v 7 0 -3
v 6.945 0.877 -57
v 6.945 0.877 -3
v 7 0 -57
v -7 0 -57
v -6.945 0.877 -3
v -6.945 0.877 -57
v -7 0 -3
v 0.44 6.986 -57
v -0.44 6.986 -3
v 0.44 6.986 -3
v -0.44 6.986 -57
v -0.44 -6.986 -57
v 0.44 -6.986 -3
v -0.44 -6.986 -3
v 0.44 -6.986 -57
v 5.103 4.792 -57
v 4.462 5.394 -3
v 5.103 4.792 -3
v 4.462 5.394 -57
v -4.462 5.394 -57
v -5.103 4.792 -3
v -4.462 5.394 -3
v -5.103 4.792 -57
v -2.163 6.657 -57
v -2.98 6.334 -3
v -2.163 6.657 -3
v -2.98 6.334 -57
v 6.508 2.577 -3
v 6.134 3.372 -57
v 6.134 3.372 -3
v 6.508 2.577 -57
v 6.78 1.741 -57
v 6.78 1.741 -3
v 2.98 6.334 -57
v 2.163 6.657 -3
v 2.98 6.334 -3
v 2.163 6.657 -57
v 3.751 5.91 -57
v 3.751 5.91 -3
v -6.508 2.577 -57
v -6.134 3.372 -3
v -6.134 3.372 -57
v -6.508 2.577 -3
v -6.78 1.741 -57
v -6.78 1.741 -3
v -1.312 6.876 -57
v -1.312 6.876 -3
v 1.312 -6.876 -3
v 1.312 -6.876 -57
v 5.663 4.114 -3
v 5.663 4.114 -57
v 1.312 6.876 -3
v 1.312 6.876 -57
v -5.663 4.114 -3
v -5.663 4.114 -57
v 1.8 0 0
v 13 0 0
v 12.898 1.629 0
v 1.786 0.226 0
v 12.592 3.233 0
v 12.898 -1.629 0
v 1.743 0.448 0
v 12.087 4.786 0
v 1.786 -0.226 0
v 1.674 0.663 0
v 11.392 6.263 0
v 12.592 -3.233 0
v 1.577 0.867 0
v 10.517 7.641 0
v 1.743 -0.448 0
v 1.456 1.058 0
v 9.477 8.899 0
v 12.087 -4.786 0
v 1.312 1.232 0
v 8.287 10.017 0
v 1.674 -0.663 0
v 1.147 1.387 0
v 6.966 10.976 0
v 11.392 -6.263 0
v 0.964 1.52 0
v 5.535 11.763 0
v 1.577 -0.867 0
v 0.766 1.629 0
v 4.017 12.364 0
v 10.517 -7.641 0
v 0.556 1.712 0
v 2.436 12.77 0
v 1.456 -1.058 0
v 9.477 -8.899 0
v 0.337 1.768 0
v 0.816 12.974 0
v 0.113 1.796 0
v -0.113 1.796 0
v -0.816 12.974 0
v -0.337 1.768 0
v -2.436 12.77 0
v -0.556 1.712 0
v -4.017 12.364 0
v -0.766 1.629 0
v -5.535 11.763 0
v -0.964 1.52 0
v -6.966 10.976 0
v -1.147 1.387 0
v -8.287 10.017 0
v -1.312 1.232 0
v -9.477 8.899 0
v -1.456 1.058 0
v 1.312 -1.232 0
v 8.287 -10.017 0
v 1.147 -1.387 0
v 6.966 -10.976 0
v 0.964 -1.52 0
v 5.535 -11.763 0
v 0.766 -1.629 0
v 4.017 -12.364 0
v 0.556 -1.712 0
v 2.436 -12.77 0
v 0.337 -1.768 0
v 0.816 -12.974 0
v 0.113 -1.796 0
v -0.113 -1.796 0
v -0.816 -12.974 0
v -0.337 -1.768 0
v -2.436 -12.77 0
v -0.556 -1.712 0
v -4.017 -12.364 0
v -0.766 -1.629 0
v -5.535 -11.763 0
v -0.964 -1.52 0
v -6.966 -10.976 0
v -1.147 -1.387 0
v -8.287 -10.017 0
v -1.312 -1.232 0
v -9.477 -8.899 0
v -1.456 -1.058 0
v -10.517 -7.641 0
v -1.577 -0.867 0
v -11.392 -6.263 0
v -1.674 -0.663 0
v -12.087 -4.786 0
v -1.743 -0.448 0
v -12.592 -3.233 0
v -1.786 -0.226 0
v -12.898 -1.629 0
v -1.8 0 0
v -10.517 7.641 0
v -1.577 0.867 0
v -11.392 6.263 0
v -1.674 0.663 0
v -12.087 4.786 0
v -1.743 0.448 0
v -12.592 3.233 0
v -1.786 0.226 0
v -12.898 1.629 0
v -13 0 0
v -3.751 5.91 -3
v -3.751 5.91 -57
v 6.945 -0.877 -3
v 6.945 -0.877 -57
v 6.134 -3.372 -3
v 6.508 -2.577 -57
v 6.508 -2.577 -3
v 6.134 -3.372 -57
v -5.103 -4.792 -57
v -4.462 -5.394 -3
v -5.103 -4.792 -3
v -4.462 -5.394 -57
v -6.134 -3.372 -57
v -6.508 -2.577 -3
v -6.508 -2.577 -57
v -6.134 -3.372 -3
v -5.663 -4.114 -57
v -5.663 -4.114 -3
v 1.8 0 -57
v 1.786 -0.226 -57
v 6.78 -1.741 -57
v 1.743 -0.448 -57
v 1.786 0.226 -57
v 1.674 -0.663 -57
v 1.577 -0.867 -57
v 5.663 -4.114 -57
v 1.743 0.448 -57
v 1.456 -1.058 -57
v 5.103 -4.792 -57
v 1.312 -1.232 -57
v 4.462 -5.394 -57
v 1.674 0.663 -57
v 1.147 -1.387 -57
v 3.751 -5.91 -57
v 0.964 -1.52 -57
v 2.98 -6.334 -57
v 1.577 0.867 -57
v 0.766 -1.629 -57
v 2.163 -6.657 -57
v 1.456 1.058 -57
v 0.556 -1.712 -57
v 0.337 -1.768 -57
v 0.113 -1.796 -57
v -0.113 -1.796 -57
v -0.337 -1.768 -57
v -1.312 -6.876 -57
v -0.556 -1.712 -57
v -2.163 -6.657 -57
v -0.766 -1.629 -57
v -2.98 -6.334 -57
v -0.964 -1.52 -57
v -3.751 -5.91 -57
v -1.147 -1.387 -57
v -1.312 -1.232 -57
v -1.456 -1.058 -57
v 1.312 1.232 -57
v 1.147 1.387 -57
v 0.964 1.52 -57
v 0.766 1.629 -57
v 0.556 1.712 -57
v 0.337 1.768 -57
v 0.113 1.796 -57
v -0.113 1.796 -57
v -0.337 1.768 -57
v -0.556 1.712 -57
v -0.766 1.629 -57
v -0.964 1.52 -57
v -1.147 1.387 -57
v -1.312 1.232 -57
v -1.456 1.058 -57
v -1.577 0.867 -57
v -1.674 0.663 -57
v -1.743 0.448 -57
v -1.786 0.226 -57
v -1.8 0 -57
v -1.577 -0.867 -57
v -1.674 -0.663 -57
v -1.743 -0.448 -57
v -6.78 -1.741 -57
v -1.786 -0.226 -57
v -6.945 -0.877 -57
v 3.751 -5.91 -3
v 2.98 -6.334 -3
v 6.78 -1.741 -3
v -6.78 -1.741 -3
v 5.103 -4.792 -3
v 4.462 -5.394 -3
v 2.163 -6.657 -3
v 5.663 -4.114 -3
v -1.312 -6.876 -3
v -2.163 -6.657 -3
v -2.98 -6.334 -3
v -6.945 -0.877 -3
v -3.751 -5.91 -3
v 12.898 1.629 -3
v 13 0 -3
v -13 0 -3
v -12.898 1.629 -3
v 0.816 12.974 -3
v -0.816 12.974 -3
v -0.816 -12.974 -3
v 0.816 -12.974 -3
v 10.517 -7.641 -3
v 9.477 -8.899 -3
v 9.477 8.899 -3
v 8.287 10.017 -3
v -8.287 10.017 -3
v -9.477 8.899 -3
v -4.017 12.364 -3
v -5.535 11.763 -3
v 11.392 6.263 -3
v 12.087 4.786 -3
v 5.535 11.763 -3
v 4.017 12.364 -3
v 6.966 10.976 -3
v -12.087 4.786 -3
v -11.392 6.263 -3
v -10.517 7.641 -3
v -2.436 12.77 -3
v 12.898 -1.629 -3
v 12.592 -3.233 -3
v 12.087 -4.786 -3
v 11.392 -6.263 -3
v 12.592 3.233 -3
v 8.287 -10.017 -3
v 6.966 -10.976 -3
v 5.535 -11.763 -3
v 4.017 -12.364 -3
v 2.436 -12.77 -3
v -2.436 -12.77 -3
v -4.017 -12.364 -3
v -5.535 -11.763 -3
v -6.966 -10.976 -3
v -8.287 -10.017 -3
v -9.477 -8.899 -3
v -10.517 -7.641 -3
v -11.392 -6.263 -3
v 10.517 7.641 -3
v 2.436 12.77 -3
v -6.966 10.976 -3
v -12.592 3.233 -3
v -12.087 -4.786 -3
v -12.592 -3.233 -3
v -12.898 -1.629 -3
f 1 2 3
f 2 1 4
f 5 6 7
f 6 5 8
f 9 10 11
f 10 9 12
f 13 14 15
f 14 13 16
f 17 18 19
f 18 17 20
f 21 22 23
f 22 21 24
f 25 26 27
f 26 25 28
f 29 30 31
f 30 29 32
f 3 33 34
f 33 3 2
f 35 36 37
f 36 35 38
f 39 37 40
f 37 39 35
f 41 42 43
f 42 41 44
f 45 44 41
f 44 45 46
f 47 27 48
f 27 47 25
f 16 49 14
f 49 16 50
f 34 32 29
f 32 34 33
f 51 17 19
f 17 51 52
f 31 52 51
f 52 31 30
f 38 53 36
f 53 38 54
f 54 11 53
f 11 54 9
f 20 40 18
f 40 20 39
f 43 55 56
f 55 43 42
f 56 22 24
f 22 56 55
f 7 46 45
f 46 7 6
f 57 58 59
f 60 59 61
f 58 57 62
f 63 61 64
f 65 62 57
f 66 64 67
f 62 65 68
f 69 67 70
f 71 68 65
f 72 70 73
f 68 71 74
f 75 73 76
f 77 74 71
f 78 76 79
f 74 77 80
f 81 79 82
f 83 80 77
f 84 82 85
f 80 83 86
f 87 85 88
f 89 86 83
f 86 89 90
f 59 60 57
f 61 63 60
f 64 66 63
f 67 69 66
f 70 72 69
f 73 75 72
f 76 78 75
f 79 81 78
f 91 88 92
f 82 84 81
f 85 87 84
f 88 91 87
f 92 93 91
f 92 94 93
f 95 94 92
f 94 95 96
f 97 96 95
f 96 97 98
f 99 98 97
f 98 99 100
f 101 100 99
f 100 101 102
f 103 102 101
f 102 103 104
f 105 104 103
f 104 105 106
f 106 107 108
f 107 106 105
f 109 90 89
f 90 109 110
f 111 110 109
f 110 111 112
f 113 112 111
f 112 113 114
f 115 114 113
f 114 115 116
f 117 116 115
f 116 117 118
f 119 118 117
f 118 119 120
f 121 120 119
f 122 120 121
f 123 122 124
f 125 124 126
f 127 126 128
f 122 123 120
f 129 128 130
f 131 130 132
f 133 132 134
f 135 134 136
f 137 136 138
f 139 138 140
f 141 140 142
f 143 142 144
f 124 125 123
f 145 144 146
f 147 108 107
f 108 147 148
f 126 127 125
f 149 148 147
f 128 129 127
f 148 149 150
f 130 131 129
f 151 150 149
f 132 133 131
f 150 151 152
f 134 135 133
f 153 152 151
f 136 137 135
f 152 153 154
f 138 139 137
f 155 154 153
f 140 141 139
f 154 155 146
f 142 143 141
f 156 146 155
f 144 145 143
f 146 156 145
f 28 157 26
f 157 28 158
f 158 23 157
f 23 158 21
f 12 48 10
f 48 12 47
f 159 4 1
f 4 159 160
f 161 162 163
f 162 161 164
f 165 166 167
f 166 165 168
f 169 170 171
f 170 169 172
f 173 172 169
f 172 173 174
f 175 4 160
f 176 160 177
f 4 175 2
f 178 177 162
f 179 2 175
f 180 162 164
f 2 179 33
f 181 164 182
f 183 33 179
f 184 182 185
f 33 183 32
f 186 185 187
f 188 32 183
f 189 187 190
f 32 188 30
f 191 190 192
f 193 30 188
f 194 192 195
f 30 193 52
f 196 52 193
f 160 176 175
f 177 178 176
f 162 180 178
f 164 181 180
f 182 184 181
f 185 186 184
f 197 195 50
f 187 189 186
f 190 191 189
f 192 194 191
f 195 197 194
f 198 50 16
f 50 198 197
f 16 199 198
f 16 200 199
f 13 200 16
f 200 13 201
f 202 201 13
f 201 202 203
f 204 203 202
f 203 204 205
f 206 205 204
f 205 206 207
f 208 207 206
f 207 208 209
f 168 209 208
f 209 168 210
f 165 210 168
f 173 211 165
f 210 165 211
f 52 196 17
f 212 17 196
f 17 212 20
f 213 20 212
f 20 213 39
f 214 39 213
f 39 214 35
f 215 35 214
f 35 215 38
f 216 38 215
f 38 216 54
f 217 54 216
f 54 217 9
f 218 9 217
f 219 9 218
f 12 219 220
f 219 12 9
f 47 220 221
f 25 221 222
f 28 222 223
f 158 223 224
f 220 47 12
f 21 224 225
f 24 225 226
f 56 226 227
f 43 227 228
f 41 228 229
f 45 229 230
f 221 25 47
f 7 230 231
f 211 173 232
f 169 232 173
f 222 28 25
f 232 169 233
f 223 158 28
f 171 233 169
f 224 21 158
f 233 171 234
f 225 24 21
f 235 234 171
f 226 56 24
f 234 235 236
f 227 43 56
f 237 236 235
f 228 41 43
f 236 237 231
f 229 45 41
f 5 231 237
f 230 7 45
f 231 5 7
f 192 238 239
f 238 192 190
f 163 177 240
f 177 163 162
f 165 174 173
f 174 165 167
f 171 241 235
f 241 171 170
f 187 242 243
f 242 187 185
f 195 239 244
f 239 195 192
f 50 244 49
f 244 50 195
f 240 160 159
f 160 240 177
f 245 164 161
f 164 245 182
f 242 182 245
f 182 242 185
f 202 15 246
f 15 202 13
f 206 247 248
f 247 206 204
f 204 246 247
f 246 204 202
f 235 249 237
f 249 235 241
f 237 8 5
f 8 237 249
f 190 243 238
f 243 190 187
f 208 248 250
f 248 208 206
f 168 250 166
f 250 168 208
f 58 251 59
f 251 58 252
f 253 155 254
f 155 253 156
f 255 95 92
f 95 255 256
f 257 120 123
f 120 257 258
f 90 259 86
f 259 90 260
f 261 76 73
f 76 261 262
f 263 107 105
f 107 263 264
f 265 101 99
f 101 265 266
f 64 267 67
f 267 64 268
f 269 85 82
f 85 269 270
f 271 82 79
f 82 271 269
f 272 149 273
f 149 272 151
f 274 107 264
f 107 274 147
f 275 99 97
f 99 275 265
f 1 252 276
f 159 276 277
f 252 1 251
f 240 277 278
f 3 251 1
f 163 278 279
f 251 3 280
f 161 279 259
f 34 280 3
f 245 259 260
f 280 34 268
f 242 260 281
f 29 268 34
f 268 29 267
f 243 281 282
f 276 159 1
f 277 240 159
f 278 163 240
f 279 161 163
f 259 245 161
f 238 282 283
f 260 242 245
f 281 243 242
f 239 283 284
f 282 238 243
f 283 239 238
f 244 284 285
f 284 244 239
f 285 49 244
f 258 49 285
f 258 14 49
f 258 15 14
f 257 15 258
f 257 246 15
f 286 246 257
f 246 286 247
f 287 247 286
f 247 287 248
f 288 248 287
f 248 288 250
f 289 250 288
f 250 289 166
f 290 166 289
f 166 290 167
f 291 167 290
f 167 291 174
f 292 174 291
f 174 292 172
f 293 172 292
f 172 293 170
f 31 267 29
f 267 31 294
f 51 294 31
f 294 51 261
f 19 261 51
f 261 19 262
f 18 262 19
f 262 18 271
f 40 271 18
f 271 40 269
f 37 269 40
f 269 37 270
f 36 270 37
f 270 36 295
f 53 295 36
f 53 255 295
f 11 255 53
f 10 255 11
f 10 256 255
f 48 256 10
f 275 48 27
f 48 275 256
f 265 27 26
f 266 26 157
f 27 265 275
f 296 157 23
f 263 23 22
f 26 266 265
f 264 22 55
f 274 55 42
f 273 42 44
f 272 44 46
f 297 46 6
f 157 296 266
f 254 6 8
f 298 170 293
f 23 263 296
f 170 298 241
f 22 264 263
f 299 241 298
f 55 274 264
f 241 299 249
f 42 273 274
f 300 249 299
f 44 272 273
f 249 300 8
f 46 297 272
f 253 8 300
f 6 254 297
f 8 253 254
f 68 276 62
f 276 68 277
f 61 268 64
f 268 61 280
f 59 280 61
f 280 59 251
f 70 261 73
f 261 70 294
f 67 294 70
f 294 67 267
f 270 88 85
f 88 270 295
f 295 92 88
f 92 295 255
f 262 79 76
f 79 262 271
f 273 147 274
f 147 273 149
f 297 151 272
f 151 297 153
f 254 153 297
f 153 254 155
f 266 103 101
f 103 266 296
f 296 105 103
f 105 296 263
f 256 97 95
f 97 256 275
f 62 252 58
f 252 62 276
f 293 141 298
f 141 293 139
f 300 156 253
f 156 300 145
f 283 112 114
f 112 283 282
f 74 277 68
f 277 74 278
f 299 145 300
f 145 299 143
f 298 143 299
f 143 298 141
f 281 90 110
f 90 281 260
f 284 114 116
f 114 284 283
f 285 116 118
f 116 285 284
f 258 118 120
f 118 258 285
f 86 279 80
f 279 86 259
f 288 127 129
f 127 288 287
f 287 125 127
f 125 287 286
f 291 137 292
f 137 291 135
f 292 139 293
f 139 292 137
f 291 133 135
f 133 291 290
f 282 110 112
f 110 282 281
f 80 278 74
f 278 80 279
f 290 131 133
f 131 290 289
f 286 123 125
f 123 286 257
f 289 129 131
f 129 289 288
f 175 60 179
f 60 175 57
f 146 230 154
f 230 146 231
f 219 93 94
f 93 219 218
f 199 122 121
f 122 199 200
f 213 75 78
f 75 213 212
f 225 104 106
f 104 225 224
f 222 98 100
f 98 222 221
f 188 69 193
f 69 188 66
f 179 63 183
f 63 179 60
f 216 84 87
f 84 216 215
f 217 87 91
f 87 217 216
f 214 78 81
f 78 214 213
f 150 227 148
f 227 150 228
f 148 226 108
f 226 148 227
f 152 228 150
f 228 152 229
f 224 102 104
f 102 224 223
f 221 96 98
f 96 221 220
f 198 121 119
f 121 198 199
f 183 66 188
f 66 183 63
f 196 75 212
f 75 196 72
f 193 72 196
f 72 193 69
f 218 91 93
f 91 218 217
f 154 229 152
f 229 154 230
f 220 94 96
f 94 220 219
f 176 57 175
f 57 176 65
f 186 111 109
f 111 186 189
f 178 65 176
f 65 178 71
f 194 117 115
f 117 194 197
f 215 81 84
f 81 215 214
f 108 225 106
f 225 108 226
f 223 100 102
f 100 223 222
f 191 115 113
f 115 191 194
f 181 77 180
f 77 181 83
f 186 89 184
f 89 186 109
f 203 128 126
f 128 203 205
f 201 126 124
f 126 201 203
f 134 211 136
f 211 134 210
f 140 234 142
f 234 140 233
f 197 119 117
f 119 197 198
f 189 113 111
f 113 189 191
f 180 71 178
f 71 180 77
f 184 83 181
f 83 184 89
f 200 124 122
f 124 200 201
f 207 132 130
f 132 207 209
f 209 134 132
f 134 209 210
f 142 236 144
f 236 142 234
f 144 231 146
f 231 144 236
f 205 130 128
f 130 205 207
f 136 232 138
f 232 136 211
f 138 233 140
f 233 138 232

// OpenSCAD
$fn = 50;


difference() {
	union() {
		translate(v = [0, 0, -57.0000000000]) {
			cylinder(h = 57, r = 7.0000000000);
		}
		translate(v = [0, 0, -3.0000000000]) {
			cylinder(h = 3, r = 13.0000000000);
		}
	}
	union() {
		#translate(v = [0, 0, -57]) {
			cylinder(h = 57, r = 1.8000000000);
		}
	}
}
